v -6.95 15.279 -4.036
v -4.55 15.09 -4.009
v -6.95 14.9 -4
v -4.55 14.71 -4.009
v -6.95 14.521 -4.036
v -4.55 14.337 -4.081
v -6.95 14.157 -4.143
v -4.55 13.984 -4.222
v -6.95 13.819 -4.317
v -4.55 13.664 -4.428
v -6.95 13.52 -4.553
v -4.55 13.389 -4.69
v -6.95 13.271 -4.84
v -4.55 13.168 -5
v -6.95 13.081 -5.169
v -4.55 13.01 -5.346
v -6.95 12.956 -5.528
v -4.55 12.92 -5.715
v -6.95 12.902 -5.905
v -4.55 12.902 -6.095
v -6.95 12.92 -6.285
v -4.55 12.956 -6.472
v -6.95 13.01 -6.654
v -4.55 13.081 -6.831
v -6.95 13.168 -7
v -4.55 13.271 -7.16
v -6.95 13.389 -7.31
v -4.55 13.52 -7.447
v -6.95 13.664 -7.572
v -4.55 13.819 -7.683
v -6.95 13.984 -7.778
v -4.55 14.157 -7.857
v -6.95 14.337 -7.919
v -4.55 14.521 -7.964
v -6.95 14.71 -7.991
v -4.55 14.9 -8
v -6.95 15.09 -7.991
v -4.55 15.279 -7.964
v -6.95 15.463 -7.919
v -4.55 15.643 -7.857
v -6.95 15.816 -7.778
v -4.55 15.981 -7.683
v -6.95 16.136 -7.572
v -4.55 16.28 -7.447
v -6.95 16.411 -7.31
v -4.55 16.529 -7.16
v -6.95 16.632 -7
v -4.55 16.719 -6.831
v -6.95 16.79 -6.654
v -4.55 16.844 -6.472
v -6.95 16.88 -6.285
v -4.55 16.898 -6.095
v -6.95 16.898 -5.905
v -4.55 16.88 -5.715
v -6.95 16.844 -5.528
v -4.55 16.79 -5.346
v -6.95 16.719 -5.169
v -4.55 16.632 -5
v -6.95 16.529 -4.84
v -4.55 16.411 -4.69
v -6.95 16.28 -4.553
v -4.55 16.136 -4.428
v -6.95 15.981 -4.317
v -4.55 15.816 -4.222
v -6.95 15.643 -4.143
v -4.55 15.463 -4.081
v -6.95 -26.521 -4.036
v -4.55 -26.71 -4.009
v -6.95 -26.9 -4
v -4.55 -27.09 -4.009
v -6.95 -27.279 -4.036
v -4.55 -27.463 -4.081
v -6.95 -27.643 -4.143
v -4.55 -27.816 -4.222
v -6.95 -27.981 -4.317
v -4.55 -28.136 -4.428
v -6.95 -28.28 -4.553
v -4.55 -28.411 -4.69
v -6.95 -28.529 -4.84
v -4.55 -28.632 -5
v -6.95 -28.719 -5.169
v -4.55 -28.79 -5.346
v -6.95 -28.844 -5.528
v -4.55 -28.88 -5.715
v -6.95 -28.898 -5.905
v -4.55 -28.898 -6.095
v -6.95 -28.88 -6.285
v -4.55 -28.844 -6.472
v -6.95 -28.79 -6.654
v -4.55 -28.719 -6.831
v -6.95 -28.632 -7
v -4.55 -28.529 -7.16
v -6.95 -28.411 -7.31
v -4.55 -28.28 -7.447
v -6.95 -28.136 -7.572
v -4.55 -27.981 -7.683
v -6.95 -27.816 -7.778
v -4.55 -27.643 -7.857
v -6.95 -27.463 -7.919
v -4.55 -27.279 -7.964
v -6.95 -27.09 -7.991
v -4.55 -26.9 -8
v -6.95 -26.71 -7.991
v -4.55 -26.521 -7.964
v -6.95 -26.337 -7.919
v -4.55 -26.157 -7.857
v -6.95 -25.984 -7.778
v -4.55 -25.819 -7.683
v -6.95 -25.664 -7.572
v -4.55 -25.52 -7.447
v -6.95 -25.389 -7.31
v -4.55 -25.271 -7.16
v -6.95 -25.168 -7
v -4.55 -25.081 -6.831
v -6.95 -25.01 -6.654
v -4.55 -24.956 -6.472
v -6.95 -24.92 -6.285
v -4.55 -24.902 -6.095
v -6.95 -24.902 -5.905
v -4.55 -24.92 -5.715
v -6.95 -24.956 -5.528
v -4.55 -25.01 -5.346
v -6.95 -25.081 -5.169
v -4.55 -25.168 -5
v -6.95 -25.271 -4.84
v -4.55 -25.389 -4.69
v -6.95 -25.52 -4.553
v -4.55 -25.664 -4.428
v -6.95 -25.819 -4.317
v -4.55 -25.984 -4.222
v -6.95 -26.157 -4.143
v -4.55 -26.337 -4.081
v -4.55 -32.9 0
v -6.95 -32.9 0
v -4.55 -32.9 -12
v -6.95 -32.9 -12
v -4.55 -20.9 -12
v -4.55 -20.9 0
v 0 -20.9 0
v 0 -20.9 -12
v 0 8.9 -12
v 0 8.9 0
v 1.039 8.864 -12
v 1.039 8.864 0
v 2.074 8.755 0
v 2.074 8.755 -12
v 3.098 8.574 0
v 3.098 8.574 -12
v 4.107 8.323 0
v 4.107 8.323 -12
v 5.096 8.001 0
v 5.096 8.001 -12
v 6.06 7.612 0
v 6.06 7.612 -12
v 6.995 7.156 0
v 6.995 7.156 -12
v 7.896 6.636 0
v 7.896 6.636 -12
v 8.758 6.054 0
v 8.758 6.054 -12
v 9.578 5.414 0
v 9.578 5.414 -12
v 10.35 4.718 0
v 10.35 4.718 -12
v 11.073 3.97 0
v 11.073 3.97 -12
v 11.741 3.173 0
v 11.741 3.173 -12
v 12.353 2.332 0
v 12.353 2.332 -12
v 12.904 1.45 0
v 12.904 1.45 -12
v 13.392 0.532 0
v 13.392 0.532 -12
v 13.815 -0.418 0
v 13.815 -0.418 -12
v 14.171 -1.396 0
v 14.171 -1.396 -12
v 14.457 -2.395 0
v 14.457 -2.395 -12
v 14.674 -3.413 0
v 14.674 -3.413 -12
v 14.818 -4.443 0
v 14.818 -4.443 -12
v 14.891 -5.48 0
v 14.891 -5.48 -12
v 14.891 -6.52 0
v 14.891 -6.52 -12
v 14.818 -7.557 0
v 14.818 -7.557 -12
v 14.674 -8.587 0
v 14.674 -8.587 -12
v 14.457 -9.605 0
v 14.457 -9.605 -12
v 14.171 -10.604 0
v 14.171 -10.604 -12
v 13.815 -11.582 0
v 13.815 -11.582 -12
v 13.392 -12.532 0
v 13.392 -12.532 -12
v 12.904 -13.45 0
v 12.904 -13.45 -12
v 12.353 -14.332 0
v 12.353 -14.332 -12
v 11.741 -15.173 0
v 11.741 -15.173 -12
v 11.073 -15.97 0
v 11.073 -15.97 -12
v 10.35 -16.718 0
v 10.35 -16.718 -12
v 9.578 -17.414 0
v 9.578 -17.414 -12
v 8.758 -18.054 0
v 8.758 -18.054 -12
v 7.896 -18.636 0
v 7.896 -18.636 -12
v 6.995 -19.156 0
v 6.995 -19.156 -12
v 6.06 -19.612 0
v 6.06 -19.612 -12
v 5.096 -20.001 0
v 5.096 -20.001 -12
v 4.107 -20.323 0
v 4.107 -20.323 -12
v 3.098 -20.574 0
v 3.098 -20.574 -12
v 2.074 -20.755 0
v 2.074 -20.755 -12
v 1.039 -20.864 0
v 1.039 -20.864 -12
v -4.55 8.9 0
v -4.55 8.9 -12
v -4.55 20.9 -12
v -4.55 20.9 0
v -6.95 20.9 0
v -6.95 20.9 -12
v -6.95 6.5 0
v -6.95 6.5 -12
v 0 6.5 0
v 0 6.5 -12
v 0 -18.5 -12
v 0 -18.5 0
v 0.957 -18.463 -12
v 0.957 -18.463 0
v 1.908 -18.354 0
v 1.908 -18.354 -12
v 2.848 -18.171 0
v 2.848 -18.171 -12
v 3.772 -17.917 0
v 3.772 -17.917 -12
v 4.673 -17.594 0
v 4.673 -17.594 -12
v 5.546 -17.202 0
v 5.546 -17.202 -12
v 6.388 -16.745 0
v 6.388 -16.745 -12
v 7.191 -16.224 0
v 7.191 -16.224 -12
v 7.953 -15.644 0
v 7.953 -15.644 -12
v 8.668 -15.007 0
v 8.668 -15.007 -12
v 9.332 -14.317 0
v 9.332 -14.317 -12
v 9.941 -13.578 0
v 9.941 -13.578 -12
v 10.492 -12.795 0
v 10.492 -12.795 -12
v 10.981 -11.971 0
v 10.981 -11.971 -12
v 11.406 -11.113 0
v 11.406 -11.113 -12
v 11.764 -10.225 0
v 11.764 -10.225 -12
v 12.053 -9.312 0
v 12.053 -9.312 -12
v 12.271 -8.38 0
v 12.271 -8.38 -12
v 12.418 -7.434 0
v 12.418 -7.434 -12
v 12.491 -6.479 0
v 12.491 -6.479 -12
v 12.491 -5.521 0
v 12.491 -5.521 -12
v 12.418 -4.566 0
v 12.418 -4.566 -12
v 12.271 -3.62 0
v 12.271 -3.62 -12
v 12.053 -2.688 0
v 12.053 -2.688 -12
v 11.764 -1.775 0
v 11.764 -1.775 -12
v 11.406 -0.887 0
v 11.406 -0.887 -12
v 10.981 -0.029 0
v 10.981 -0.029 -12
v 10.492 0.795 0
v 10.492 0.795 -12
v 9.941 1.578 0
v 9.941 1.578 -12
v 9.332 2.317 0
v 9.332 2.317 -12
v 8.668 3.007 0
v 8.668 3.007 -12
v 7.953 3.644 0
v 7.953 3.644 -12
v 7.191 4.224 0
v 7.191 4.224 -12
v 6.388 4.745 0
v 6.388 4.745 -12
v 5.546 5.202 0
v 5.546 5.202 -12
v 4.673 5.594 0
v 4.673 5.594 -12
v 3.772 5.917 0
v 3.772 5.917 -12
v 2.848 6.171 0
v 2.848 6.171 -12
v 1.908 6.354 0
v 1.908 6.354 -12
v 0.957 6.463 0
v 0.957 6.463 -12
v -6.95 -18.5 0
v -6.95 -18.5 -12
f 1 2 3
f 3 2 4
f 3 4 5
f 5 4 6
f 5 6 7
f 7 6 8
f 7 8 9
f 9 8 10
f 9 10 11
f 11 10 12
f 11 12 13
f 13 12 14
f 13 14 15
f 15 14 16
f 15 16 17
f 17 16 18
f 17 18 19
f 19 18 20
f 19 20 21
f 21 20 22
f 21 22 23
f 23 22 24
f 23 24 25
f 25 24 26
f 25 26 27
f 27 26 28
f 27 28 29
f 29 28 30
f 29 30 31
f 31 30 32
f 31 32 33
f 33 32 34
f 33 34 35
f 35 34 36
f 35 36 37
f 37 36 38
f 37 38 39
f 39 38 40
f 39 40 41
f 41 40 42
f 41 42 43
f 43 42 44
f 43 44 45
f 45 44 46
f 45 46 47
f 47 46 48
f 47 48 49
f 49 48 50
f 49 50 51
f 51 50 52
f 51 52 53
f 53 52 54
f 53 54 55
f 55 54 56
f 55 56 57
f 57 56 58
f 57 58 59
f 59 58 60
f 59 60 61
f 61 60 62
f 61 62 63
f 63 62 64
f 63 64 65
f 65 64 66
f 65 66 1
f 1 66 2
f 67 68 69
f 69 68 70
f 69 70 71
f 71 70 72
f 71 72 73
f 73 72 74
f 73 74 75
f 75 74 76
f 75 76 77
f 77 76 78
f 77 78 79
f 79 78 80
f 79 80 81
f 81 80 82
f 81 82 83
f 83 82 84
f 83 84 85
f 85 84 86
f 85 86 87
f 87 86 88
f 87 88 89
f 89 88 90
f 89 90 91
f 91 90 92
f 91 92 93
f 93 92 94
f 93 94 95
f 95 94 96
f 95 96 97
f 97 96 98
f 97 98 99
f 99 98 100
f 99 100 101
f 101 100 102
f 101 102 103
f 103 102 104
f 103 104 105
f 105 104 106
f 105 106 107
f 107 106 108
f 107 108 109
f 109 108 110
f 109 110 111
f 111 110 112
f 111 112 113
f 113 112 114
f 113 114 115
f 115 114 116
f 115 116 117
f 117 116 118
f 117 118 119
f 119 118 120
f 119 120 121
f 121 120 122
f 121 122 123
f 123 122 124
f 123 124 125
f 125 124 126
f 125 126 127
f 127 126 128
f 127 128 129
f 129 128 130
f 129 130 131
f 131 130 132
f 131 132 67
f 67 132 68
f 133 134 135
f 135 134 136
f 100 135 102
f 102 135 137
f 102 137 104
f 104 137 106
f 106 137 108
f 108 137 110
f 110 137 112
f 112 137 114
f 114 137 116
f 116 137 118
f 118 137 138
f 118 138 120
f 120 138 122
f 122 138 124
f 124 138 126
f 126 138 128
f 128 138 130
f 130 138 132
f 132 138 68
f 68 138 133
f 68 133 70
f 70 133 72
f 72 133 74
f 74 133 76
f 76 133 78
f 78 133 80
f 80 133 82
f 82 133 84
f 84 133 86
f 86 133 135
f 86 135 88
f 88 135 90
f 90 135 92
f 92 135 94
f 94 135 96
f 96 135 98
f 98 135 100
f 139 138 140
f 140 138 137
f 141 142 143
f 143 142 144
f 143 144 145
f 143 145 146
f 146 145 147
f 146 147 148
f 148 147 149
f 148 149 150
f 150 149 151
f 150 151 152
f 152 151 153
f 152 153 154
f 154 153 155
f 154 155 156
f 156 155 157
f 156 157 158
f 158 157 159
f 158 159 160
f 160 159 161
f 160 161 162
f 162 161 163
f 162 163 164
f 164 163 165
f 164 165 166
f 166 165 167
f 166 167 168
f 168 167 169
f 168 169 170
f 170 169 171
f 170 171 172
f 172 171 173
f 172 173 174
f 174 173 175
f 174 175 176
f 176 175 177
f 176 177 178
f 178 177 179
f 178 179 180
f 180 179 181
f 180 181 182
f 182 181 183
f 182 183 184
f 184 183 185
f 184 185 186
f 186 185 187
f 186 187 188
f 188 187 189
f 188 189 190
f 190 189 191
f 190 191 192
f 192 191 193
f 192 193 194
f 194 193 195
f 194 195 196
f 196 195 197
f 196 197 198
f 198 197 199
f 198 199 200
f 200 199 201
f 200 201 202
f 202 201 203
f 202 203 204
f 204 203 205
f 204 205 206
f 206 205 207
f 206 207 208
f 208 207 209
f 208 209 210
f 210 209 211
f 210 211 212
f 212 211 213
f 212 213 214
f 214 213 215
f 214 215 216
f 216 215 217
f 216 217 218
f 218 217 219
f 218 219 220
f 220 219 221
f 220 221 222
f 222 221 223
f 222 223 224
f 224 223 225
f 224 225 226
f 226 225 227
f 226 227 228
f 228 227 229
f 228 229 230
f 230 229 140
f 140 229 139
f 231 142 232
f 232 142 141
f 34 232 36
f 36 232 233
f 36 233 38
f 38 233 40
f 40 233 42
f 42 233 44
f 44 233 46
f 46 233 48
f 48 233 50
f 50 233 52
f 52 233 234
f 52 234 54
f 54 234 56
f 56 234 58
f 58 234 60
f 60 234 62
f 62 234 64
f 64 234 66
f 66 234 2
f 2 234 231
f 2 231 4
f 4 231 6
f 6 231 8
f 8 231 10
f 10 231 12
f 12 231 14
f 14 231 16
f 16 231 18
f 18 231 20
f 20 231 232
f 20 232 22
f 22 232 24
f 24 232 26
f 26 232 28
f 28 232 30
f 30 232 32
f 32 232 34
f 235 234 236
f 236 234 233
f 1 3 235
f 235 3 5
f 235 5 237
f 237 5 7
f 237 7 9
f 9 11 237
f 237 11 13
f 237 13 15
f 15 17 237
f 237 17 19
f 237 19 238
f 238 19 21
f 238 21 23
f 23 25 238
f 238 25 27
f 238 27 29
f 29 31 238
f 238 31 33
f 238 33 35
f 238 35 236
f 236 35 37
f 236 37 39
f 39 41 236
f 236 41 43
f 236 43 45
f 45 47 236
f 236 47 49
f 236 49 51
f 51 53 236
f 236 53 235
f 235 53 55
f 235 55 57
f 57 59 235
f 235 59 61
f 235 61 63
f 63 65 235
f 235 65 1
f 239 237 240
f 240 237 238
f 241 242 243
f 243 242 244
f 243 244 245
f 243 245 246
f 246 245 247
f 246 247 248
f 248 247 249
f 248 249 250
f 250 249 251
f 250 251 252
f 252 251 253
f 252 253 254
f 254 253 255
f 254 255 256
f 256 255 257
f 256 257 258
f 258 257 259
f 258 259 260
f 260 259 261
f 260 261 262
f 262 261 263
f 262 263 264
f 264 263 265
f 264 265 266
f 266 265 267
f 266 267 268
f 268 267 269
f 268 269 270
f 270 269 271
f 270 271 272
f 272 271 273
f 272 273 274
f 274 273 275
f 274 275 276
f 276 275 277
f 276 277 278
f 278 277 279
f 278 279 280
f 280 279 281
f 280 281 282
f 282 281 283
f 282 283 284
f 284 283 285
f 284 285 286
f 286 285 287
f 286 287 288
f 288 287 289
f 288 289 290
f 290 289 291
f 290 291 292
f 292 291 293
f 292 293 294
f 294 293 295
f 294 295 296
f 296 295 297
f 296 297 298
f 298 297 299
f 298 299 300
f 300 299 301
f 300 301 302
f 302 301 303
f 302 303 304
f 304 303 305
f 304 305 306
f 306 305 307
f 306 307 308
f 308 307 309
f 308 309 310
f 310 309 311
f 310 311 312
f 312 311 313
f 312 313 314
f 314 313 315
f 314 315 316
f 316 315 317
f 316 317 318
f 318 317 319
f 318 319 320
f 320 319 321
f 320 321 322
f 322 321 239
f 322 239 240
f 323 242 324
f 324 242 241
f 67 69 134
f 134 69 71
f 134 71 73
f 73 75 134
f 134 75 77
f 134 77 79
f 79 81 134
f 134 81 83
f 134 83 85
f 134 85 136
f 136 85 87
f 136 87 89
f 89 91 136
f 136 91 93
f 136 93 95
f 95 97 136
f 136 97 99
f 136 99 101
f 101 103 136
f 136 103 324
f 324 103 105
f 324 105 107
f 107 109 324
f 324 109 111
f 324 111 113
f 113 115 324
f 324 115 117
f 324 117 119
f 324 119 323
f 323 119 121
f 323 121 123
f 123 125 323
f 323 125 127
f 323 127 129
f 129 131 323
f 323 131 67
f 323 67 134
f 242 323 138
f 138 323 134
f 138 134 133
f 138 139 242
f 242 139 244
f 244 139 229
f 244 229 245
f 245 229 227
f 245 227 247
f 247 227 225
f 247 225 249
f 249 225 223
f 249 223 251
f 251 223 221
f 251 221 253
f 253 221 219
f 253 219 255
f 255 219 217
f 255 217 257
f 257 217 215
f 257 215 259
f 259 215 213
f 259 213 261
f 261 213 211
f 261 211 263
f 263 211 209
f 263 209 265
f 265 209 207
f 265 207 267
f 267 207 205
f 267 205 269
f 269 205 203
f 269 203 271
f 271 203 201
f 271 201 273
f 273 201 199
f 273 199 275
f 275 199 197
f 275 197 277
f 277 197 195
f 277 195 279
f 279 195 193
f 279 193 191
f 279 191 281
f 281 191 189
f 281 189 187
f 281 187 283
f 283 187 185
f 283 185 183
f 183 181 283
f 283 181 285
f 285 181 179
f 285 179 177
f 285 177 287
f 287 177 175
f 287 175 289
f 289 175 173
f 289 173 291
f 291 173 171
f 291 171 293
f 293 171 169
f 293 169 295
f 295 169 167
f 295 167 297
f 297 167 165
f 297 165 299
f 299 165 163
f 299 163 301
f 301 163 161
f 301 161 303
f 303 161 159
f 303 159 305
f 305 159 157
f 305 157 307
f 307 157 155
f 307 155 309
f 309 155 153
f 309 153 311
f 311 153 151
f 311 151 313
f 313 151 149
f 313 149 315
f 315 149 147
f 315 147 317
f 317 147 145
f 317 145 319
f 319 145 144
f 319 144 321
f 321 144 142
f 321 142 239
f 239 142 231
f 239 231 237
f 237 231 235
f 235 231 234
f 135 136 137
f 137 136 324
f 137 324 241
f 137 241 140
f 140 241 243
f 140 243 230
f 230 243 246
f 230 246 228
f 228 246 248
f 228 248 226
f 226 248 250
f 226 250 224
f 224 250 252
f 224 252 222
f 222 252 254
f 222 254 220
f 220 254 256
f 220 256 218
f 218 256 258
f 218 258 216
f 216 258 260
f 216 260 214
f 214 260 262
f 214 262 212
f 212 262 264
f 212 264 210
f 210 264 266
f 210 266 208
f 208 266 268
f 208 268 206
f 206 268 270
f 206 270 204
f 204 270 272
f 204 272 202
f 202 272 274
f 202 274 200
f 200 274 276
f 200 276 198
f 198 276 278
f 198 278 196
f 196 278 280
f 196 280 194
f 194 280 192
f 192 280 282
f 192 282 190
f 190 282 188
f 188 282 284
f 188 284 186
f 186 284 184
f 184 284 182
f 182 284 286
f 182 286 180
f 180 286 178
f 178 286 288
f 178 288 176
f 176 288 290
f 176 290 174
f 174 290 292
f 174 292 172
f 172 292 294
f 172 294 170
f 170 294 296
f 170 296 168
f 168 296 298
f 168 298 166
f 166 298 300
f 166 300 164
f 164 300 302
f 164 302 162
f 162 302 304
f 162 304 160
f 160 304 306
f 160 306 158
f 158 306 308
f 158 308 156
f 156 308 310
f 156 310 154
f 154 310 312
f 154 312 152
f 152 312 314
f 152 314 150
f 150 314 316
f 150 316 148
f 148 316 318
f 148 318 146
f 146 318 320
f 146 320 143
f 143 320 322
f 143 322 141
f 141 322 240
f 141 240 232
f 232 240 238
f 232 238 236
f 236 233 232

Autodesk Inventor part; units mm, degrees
ref_plane "YZ Plane" through (0, 0, 0) normal (1, 0, 0) x (0, 1, 0)
ref_plane "XZ Plane" through (0, 0, 0) normal (0, 1, 0) x (-1, 0, 0)
ref_plane "XY Plane" through (0, 0, 0) normal (0, 0, 1) x (1, 0, 0)
sketch "Skizze1" plane through (0, 0, 0) normal (0, 0, 1) x (1, 0, 0)
  arc A0 (-12.5, -6) -> (0, 6.5) centre (0, -6) ccw projected
  arc A1 (0, 6.5) -> (-12.5, -6) centre (0, -6) ccw projected
  line L0 (-14.35, -116) -> (-14.35, 104) projected
  line L1 (-6.95, -18.5) -> (0, -18.5)
  arc A2 (0, -18.5) -> (0, 6.5) centre (0, -6) ccw
  line L2 (0, 6.5) -> (-6.95, 6.5)
  line L3 (-6.95, 6.5) -> (-6.95, 20.9)
  line L4 (-6.95, 20.9) -> (-4.55, 20.9)
  line L5 (-4.55, 20.9) -> (-4.55, 8.9)
  line L6 (-4.55, 8.9) -> (0, 8.9)
  arc A3 (0, -20.9) -> (0, 8.9) centre (0, -6) ccw
  line L7 (0, -20.9) -> (-4.55, -20.9)
  line L8 (-4.55, -20.9) -> (-4.55, -32.9)
  line L9 (-4.55, -32.9) -> (-6.95, -32.9)
  line L10 (-6.95, -32.9) -> (-6.95, -18.5)
  point P0 (0, 0)
  point P1 (-14.35, 20.9)
  point P2 (-14.35, 6.5)
  point P3 (0, 6.5)
  point P4 (0, -18.5)
  point P5 (-14.35, -18.5)
  point P6 (-14.35, -32.9)
  dimension "d0" = 2.4
  dimension "d1" = 2.4
  dimension "d2" = 2.4
  dimension "d4" = 12.5
  dimension "d5" = 7.4
  dimension "d7" = 12.5
  dimension "d8" = 12
extrude "Extrusion1" add sketch "Skizze1" against normal blind 12 contours A0 L2 L3 L4 L5 L6 A3 L7 L8 L9 L10 L1
sketch "Skizze2" plane through (-4.55, 8.9, 0) normal (1, 0, 0) x (0, 0, -1)
  line L0 (0, 0) -> (12, 0) projected
  line L1 (12, -2.4) -> (12, 12) projected
  line L2 (0, 0) -> (12, 12) construction
  circle A0 centre (6, 6) radius 2
  line L3 (12, -41.8) -> (12, -27.4) construction
  line L4 (12, -41.8) -> (0, -29.8) construction
  line L5 (0, -27.4) -> (0, -41.8) construction
  circle A1 centre (6, -35.8) radius 2
  point P0 (0, -8.9)
  dimension "d11" = 4
extrude "Extrusion2" cut sketch "Skizze2" against normal through all
equation "\"d1\" = d0"
equation "\"d2\" = d0"
equation "\"d7\" = d4"
equation "\"d9\" = d8"
properties part number "12_Motor_Fixation"
